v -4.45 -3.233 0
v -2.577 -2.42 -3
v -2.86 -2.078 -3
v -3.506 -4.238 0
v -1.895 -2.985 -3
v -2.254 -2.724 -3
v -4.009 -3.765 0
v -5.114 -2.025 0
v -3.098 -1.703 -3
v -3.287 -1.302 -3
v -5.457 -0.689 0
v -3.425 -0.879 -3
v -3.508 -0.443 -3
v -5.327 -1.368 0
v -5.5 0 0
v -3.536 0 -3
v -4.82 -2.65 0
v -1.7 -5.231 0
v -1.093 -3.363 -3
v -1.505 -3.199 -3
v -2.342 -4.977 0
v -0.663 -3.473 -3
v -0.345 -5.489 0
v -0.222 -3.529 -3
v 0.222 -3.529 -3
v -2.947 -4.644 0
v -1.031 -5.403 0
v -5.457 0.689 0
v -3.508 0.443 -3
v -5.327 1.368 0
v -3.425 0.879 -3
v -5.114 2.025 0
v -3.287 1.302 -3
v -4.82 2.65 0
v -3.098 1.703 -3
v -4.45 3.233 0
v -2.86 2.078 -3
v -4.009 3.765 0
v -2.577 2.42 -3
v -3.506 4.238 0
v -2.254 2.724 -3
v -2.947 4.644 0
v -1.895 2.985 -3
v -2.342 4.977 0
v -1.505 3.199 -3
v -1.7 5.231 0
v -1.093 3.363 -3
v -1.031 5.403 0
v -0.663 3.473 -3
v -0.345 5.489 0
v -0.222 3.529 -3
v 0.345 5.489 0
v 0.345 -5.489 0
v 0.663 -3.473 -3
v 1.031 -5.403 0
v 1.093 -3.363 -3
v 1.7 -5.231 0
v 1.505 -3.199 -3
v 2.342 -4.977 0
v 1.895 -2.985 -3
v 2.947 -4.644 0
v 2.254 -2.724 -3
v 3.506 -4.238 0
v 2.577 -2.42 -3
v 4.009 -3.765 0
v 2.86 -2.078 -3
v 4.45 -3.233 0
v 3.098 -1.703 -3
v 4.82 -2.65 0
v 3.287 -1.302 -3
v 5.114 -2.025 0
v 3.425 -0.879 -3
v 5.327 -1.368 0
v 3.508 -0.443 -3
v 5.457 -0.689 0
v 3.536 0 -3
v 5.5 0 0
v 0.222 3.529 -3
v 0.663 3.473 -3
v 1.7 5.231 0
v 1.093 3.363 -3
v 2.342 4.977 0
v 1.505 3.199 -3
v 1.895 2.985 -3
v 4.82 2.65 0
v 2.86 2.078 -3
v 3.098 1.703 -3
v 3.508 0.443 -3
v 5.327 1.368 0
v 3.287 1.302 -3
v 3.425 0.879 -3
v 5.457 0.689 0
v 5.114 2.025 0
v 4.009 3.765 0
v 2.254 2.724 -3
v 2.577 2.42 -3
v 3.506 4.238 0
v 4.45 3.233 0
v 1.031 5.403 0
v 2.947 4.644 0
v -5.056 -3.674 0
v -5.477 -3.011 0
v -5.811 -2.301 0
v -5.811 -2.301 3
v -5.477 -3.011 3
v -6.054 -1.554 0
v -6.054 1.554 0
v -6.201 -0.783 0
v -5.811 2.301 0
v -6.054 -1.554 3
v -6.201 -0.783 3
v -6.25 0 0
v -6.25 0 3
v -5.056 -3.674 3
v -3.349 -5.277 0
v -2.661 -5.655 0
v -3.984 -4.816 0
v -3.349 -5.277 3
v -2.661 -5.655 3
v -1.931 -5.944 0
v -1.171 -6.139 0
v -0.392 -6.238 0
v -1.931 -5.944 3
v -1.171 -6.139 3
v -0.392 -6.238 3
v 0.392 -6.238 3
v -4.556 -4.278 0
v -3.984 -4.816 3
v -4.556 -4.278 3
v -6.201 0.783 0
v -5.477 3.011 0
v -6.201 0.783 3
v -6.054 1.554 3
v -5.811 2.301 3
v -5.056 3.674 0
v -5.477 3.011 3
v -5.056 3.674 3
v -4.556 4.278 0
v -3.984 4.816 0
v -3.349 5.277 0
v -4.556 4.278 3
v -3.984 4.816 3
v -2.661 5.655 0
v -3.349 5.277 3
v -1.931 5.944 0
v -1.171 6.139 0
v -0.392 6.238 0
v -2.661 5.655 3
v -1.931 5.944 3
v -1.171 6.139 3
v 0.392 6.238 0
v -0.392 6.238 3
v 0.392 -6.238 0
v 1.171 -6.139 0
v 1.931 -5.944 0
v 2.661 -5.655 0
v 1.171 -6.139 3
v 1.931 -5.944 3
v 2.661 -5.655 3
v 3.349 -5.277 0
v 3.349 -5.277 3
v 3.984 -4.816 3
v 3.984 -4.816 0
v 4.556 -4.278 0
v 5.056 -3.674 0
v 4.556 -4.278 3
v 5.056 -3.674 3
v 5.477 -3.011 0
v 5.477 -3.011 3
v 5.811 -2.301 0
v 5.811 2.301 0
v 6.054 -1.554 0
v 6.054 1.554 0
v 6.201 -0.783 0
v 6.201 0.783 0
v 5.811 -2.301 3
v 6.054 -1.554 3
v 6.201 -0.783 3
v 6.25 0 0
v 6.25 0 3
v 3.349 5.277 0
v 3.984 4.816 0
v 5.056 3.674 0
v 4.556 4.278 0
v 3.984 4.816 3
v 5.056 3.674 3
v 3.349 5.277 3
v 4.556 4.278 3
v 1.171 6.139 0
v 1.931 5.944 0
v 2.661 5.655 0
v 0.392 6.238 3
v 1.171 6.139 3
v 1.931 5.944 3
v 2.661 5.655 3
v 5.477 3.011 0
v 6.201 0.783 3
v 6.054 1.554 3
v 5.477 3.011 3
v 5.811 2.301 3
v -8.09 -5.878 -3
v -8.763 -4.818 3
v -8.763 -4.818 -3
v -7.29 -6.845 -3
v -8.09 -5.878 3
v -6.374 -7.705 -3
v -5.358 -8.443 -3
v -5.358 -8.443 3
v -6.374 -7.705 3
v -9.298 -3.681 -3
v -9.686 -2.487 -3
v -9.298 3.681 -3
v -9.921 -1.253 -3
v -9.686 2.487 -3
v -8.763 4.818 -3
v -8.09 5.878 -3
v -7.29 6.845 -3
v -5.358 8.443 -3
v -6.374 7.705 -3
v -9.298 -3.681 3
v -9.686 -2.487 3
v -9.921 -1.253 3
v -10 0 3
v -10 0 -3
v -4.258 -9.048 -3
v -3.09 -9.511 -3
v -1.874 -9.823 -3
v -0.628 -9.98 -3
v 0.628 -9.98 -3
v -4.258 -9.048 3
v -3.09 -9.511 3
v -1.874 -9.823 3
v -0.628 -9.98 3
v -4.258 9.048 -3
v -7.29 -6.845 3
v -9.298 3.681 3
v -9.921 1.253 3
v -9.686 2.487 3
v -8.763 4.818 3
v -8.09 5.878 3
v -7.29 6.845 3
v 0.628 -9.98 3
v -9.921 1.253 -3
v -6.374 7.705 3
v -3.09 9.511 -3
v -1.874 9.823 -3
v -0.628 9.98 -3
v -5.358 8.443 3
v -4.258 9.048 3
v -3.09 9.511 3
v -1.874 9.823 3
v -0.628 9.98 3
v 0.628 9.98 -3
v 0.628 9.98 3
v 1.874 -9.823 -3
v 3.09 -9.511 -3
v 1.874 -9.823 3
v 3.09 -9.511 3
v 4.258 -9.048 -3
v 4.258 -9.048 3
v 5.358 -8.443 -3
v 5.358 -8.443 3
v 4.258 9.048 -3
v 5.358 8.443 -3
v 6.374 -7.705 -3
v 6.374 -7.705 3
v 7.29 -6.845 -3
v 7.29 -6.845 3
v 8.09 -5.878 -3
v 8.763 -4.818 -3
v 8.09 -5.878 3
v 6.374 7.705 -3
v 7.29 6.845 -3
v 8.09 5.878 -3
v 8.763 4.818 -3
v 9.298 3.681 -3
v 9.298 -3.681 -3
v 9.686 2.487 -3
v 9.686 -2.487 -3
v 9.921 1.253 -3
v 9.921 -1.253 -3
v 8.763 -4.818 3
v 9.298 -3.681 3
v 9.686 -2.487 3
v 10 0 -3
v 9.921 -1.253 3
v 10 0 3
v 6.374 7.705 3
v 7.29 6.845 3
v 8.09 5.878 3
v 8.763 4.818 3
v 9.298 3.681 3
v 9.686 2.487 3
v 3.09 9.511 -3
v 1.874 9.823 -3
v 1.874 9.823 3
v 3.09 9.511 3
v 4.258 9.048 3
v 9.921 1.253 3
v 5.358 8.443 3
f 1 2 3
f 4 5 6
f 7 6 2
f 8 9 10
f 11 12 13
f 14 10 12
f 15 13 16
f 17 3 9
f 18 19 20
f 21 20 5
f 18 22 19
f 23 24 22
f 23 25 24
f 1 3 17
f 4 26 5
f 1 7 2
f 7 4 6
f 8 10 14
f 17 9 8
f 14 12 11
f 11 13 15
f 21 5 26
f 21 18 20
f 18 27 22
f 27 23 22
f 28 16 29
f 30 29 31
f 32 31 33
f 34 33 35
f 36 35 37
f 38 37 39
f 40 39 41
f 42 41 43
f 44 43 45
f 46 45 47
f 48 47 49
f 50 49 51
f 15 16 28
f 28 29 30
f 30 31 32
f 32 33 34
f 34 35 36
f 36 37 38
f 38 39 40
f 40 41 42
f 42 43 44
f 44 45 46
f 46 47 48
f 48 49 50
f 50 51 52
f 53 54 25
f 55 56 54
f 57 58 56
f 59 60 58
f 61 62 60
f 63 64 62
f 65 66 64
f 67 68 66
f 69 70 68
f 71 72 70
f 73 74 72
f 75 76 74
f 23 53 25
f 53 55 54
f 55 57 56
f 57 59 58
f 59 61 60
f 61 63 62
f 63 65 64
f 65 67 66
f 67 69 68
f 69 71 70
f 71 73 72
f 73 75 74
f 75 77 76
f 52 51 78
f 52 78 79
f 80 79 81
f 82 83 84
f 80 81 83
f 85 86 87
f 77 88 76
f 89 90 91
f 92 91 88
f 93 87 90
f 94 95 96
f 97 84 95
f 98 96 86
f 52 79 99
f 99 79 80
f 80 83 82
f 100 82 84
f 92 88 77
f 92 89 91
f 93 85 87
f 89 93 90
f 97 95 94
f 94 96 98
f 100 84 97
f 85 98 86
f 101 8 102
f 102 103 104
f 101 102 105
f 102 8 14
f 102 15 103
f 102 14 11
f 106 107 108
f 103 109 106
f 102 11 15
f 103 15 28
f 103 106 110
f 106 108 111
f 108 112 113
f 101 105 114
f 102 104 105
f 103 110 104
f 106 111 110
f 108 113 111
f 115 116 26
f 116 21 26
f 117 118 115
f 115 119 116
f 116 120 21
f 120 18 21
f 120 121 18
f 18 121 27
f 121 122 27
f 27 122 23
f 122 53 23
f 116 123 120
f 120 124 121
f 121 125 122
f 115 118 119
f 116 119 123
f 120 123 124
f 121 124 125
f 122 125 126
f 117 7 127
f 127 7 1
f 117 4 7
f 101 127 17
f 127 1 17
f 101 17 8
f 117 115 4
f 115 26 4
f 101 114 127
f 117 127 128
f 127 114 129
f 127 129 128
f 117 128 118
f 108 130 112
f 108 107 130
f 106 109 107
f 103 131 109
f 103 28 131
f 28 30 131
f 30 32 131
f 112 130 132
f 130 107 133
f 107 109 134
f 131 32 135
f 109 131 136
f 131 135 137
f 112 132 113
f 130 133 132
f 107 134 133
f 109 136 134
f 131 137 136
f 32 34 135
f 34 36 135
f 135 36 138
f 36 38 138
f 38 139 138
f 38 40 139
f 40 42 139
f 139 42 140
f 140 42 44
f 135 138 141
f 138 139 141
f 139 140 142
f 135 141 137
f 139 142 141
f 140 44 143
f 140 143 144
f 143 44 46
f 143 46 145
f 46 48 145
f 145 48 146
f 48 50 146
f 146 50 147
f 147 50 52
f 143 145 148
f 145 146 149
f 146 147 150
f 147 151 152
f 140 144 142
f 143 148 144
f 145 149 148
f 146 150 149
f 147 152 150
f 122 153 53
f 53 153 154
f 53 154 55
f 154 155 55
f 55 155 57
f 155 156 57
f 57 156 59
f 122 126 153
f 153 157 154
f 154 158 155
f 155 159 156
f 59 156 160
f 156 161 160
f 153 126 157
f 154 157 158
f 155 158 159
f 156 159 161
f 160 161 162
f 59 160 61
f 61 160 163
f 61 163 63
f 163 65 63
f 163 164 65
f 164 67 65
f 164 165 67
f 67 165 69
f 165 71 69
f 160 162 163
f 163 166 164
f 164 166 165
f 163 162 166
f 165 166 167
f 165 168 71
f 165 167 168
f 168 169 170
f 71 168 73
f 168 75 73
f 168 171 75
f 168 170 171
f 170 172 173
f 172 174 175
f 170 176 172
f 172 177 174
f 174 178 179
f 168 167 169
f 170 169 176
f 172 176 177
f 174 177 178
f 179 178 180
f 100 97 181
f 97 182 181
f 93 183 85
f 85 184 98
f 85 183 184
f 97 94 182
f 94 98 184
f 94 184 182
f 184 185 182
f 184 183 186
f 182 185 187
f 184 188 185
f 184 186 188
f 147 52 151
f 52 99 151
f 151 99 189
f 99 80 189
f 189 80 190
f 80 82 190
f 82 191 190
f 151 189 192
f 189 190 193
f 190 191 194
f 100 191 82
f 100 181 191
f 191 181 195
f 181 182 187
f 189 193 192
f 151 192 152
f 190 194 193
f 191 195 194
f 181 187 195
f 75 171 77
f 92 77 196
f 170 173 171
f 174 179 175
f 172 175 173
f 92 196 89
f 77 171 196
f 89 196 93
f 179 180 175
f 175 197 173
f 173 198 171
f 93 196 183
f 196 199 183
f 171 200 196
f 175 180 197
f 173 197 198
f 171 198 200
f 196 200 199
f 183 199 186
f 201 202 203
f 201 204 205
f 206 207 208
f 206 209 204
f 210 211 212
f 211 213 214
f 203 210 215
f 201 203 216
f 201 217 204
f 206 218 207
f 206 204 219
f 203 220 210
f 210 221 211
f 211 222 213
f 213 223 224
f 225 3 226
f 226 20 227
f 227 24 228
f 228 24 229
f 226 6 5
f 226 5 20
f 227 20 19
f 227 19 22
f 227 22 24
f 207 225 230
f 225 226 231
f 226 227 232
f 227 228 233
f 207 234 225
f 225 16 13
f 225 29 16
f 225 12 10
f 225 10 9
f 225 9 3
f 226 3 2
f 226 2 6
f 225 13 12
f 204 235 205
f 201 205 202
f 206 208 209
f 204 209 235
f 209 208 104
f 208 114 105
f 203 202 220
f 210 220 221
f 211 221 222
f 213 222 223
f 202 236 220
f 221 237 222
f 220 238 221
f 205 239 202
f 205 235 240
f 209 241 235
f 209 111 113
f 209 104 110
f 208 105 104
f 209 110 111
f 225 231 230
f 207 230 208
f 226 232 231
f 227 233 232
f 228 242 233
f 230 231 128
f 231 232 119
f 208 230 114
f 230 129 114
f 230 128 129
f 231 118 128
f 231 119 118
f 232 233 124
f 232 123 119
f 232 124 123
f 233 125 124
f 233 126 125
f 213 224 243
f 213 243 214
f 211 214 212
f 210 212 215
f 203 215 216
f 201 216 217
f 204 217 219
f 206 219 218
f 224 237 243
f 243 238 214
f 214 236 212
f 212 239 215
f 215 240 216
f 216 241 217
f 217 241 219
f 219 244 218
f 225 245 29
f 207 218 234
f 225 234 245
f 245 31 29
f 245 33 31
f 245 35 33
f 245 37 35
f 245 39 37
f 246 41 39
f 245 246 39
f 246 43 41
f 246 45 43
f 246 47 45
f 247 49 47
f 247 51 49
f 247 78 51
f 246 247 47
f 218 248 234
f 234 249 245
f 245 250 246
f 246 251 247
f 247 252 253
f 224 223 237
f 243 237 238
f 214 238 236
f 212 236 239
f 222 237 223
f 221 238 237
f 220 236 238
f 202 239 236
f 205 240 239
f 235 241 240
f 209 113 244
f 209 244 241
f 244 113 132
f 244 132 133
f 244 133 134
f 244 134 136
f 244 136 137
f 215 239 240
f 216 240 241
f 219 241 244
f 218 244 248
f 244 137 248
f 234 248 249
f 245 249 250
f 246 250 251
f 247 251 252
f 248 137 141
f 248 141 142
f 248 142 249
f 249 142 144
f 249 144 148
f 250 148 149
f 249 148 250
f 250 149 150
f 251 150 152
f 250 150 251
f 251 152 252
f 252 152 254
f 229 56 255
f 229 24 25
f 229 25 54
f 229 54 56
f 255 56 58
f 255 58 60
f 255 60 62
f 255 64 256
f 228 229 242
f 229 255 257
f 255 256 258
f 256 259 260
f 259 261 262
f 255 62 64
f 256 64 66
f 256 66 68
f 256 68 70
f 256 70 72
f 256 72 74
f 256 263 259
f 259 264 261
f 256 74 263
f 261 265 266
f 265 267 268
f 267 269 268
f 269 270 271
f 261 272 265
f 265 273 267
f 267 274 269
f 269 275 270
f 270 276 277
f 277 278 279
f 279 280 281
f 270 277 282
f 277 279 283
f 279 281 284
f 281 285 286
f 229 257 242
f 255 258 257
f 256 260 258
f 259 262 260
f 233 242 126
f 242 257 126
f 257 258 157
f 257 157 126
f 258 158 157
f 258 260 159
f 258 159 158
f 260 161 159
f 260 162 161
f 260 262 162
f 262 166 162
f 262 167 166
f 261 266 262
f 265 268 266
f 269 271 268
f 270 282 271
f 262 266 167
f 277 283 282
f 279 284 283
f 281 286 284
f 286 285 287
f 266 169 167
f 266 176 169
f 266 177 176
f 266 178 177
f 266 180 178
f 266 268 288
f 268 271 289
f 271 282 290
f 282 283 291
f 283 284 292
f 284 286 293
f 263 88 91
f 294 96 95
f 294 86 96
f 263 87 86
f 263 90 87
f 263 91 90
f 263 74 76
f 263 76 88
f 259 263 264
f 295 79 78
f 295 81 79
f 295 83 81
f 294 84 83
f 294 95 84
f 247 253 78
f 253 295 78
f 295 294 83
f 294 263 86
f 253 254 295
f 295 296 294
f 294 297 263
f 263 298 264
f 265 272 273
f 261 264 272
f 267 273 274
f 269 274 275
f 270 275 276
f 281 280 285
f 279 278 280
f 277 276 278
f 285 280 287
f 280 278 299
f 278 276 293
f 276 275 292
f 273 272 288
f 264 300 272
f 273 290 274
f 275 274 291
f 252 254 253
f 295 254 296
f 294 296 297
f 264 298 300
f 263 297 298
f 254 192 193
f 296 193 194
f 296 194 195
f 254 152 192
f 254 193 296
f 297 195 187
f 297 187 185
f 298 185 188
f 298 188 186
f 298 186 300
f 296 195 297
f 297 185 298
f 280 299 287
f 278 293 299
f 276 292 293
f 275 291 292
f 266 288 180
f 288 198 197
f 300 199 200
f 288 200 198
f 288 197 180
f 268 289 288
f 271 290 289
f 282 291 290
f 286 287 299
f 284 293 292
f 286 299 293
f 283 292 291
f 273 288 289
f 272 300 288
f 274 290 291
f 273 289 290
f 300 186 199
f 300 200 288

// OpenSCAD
$fn = 50;

difference() {
	union() {
		translate(v = [0, 0, -3.0]) {
			cylinder(h = 6, r = 10.0);
		}
	}
	union() {
		translate(v = [0, 0, 0]) {
			rotate(a = [0, 0, 0]) {
				difference() {
					union() {
						translate(v = [0, 0, -6.0]) {
							cylinder(h = 6, r = 2.25);
						}
						translate(v = [0, 0, -4.2]) {
							cylinder(h = 4.2, r1 = 2.75, r2 = 5.5);
						}
						translate(v = [0, 0, -6.0]) {
							cylinder(h = 6, r = 2.75);
						}
						translate(v = [0, 0, -6.0]) {
							cylinder(h = 6, r = 2.25);
						}
					}
					union();
				}
			}
		}
		#cylinder(h = 3, r = 6.25);
	}
}
